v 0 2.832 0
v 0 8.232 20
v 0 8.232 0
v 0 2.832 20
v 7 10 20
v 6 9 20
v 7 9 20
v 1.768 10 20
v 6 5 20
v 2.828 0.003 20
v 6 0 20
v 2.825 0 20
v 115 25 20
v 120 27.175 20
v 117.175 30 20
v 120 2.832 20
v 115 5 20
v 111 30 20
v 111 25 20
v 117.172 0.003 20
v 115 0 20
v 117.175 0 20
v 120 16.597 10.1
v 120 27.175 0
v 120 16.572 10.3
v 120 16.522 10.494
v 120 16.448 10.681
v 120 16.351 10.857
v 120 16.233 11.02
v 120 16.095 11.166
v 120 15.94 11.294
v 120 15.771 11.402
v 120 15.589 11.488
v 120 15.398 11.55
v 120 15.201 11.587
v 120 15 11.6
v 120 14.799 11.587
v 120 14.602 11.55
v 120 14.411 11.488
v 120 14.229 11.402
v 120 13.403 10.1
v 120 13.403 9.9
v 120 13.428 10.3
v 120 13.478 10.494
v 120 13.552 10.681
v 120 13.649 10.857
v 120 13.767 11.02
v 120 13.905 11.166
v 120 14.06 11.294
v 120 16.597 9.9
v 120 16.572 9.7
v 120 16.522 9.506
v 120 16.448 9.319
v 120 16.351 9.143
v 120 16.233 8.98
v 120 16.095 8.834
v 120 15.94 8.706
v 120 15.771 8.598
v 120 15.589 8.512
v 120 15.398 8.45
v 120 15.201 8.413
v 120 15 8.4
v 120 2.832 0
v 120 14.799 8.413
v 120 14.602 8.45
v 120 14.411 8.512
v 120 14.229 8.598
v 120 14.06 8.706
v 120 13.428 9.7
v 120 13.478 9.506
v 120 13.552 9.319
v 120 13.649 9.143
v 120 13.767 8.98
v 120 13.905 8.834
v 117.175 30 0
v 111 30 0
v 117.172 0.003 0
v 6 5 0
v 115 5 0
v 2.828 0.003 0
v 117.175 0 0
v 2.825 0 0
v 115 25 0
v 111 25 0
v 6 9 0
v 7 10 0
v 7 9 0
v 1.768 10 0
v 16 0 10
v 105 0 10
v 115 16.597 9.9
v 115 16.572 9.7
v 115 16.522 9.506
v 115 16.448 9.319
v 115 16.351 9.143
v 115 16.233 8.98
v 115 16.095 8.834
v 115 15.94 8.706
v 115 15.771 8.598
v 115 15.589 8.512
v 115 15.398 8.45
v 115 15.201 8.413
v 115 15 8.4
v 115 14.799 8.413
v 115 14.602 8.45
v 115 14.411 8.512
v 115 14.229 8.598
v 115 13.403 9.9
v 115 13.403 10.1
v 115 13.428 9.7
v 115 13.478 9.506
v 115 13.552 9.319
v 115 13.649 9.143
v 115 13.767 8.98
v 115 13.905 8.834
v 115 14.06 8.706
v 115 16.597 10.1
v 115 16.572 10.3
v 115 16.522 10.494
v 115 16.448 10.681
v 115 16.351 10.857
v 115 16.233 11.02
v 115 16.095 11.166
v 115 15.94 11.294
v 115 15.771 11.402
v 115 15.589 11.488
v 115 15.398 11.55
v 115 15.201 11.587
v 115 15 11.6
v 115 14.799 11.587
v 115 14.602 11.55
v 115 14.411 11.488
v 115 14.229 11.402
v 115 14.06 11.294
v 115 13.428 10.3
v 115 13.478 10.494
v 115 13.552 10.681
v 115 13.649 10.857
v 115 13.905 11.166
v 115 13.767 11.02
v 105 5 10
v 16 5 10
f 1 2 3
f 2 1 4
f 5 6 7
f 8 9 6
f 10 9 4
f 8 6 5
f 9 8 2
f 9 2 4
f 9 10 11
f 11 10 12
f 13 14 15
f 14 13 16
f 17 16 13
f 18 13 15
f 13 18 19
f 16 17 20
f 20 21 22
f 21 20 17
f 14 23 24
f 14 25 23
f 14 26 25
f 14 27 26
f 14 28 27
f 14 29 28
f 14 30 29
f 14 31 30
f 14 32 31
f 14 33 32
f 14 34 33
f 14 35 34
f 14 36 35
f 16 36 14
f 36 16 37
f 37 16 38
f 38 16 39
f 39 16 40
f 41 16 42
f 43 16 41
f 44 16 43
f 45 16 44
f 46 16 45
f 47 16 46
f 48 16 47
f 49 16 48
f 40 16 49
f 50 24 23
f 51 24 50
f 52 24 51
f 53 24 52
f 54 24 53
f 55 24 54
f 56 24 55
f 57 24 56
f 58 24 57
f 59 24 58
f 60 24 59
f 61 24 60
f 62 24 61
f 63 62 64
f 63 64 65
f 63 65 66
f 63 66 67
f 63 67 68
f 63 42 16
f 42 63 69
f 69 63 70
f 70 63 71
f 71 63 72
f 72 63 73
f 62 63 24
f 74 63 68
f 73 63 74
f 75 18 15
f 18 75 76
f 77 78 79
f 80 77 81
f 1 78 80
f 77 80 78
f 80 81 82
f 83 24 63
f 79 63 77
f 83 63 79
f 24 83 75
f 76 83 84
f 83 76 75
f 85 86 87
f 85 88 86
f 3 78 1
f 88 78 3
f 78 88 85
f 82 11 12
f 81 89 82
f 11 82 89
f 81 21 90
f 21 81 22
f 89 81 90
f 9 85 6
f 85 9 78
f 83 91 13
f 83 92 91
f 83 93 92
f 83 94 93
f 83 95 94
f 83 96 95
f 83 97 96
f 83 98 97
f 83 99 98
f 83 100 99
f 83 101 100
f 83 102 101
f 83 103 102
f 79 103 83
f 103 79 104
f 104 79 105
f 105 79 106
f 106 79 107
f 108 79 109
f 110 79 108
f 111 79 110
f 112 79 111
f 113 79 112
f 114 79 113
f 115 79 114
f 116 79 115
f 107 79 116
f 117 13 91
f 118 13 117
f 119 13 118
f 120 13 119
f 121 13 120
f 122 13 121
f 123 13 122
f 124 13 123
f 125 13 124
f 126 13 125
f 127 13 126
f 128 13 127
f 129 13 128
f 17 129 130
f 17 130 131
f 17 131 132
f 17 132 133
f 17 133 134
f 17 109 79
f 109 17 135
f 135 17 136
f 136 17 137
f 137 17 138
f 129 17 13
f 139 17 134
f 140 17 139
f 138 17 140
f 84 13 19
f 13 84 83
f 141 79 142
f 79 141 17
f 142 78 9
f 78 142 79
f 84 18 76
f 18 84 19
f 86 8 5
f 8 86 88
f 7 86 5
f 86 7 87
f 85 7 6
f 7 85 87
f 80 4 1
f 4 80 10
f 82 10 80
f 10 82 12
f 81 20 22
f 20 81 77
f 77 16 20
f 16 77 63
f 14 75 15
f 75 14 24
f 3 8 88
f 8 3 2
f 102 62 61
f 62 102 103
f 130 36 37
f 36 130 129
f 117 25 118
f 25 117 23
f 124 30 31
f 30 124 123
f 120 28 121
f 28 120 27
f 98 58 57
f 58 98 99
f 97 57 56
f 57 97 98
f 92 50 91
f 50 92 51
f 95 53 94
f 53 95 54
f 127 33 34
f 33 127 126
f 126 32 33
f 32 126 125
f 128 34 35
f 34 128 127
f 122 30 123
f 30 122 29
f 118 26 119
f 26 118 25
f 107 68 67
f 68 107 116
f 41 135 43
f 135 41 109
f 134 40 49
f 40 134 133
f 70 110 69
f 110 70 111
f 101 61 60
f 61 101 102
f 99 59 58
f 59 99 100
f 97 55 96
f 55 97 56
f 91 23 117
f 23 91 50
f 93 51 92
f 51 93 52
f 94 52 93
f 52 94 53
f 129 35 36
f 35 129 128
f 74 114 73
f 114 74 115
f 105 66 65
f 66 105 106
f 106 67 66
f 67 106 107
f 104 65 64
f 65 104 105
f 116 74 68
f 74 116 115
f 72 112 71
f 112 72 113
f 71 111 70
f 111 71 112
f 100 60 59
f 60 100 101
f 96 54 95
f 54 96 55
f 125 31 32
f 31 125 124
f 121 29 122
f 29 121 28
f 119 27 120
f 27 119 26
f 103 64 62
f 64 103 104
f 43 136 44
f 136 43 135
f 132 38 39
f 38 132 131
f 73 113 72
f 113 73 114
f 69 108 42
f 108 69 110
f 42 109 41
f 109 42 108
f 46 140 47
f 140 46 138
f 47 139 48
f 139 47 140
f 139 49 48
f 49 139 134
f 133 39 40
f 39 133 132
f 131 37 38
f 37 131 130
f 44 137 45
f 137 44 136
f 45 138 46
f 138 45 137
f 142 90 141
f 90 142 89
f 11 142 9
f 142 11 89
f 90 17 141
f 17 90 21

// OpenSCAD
/* gantry-installation-hook.scad
Author: andimoto@posteo.de
----------------------------
for holding gantry ov voron 2.4 at installation into frame.

*/


module hanger(){
  difference() {
    cube([120,30,20]);

    translate([6,5,-0.1]) cube([109,20,21]);
    translate([6,5,-.10]) cube([105,30,21]);
    translate([0,10,-0.1]) cube([6,30,21]);
  }
  translate([0,9,0]) cube([7,1,20]);
}



difference() {
  hanger();
  translate([0,-5.65/2,0]) rotate([0,0,45]) cube([4,4,20]);
  translate([120,-5.65/2,0]) rotate([0,0,45]) cube([4,4,20]);
  translate([120,30-5.65/2,0]) rotate([0,0,45]) cube([4,4,20]);
  translate([0,10-sqrt(2.5^2*2)/2,0]) rotate([0,0,45]) cube([2.5,2.5,20]);

  /* holes for extrusions */
  translate([115,15,10]) rotate([0,90,0]) cylinder(r=3.2/2,h=10,$fn=50);

  /* cutout */
  translate([16,0,10]) cube([89,5,10]);
  translate([6,0,20]) rotate([0,45,0]) cube([sqrt(10^2*2),5,sqrt(10^2*2)]);
  translate([95,0,20]) rotate([0,45,0]) cube([sqrt(10^2*2),5,sqrt(10^2*2)]);
}
